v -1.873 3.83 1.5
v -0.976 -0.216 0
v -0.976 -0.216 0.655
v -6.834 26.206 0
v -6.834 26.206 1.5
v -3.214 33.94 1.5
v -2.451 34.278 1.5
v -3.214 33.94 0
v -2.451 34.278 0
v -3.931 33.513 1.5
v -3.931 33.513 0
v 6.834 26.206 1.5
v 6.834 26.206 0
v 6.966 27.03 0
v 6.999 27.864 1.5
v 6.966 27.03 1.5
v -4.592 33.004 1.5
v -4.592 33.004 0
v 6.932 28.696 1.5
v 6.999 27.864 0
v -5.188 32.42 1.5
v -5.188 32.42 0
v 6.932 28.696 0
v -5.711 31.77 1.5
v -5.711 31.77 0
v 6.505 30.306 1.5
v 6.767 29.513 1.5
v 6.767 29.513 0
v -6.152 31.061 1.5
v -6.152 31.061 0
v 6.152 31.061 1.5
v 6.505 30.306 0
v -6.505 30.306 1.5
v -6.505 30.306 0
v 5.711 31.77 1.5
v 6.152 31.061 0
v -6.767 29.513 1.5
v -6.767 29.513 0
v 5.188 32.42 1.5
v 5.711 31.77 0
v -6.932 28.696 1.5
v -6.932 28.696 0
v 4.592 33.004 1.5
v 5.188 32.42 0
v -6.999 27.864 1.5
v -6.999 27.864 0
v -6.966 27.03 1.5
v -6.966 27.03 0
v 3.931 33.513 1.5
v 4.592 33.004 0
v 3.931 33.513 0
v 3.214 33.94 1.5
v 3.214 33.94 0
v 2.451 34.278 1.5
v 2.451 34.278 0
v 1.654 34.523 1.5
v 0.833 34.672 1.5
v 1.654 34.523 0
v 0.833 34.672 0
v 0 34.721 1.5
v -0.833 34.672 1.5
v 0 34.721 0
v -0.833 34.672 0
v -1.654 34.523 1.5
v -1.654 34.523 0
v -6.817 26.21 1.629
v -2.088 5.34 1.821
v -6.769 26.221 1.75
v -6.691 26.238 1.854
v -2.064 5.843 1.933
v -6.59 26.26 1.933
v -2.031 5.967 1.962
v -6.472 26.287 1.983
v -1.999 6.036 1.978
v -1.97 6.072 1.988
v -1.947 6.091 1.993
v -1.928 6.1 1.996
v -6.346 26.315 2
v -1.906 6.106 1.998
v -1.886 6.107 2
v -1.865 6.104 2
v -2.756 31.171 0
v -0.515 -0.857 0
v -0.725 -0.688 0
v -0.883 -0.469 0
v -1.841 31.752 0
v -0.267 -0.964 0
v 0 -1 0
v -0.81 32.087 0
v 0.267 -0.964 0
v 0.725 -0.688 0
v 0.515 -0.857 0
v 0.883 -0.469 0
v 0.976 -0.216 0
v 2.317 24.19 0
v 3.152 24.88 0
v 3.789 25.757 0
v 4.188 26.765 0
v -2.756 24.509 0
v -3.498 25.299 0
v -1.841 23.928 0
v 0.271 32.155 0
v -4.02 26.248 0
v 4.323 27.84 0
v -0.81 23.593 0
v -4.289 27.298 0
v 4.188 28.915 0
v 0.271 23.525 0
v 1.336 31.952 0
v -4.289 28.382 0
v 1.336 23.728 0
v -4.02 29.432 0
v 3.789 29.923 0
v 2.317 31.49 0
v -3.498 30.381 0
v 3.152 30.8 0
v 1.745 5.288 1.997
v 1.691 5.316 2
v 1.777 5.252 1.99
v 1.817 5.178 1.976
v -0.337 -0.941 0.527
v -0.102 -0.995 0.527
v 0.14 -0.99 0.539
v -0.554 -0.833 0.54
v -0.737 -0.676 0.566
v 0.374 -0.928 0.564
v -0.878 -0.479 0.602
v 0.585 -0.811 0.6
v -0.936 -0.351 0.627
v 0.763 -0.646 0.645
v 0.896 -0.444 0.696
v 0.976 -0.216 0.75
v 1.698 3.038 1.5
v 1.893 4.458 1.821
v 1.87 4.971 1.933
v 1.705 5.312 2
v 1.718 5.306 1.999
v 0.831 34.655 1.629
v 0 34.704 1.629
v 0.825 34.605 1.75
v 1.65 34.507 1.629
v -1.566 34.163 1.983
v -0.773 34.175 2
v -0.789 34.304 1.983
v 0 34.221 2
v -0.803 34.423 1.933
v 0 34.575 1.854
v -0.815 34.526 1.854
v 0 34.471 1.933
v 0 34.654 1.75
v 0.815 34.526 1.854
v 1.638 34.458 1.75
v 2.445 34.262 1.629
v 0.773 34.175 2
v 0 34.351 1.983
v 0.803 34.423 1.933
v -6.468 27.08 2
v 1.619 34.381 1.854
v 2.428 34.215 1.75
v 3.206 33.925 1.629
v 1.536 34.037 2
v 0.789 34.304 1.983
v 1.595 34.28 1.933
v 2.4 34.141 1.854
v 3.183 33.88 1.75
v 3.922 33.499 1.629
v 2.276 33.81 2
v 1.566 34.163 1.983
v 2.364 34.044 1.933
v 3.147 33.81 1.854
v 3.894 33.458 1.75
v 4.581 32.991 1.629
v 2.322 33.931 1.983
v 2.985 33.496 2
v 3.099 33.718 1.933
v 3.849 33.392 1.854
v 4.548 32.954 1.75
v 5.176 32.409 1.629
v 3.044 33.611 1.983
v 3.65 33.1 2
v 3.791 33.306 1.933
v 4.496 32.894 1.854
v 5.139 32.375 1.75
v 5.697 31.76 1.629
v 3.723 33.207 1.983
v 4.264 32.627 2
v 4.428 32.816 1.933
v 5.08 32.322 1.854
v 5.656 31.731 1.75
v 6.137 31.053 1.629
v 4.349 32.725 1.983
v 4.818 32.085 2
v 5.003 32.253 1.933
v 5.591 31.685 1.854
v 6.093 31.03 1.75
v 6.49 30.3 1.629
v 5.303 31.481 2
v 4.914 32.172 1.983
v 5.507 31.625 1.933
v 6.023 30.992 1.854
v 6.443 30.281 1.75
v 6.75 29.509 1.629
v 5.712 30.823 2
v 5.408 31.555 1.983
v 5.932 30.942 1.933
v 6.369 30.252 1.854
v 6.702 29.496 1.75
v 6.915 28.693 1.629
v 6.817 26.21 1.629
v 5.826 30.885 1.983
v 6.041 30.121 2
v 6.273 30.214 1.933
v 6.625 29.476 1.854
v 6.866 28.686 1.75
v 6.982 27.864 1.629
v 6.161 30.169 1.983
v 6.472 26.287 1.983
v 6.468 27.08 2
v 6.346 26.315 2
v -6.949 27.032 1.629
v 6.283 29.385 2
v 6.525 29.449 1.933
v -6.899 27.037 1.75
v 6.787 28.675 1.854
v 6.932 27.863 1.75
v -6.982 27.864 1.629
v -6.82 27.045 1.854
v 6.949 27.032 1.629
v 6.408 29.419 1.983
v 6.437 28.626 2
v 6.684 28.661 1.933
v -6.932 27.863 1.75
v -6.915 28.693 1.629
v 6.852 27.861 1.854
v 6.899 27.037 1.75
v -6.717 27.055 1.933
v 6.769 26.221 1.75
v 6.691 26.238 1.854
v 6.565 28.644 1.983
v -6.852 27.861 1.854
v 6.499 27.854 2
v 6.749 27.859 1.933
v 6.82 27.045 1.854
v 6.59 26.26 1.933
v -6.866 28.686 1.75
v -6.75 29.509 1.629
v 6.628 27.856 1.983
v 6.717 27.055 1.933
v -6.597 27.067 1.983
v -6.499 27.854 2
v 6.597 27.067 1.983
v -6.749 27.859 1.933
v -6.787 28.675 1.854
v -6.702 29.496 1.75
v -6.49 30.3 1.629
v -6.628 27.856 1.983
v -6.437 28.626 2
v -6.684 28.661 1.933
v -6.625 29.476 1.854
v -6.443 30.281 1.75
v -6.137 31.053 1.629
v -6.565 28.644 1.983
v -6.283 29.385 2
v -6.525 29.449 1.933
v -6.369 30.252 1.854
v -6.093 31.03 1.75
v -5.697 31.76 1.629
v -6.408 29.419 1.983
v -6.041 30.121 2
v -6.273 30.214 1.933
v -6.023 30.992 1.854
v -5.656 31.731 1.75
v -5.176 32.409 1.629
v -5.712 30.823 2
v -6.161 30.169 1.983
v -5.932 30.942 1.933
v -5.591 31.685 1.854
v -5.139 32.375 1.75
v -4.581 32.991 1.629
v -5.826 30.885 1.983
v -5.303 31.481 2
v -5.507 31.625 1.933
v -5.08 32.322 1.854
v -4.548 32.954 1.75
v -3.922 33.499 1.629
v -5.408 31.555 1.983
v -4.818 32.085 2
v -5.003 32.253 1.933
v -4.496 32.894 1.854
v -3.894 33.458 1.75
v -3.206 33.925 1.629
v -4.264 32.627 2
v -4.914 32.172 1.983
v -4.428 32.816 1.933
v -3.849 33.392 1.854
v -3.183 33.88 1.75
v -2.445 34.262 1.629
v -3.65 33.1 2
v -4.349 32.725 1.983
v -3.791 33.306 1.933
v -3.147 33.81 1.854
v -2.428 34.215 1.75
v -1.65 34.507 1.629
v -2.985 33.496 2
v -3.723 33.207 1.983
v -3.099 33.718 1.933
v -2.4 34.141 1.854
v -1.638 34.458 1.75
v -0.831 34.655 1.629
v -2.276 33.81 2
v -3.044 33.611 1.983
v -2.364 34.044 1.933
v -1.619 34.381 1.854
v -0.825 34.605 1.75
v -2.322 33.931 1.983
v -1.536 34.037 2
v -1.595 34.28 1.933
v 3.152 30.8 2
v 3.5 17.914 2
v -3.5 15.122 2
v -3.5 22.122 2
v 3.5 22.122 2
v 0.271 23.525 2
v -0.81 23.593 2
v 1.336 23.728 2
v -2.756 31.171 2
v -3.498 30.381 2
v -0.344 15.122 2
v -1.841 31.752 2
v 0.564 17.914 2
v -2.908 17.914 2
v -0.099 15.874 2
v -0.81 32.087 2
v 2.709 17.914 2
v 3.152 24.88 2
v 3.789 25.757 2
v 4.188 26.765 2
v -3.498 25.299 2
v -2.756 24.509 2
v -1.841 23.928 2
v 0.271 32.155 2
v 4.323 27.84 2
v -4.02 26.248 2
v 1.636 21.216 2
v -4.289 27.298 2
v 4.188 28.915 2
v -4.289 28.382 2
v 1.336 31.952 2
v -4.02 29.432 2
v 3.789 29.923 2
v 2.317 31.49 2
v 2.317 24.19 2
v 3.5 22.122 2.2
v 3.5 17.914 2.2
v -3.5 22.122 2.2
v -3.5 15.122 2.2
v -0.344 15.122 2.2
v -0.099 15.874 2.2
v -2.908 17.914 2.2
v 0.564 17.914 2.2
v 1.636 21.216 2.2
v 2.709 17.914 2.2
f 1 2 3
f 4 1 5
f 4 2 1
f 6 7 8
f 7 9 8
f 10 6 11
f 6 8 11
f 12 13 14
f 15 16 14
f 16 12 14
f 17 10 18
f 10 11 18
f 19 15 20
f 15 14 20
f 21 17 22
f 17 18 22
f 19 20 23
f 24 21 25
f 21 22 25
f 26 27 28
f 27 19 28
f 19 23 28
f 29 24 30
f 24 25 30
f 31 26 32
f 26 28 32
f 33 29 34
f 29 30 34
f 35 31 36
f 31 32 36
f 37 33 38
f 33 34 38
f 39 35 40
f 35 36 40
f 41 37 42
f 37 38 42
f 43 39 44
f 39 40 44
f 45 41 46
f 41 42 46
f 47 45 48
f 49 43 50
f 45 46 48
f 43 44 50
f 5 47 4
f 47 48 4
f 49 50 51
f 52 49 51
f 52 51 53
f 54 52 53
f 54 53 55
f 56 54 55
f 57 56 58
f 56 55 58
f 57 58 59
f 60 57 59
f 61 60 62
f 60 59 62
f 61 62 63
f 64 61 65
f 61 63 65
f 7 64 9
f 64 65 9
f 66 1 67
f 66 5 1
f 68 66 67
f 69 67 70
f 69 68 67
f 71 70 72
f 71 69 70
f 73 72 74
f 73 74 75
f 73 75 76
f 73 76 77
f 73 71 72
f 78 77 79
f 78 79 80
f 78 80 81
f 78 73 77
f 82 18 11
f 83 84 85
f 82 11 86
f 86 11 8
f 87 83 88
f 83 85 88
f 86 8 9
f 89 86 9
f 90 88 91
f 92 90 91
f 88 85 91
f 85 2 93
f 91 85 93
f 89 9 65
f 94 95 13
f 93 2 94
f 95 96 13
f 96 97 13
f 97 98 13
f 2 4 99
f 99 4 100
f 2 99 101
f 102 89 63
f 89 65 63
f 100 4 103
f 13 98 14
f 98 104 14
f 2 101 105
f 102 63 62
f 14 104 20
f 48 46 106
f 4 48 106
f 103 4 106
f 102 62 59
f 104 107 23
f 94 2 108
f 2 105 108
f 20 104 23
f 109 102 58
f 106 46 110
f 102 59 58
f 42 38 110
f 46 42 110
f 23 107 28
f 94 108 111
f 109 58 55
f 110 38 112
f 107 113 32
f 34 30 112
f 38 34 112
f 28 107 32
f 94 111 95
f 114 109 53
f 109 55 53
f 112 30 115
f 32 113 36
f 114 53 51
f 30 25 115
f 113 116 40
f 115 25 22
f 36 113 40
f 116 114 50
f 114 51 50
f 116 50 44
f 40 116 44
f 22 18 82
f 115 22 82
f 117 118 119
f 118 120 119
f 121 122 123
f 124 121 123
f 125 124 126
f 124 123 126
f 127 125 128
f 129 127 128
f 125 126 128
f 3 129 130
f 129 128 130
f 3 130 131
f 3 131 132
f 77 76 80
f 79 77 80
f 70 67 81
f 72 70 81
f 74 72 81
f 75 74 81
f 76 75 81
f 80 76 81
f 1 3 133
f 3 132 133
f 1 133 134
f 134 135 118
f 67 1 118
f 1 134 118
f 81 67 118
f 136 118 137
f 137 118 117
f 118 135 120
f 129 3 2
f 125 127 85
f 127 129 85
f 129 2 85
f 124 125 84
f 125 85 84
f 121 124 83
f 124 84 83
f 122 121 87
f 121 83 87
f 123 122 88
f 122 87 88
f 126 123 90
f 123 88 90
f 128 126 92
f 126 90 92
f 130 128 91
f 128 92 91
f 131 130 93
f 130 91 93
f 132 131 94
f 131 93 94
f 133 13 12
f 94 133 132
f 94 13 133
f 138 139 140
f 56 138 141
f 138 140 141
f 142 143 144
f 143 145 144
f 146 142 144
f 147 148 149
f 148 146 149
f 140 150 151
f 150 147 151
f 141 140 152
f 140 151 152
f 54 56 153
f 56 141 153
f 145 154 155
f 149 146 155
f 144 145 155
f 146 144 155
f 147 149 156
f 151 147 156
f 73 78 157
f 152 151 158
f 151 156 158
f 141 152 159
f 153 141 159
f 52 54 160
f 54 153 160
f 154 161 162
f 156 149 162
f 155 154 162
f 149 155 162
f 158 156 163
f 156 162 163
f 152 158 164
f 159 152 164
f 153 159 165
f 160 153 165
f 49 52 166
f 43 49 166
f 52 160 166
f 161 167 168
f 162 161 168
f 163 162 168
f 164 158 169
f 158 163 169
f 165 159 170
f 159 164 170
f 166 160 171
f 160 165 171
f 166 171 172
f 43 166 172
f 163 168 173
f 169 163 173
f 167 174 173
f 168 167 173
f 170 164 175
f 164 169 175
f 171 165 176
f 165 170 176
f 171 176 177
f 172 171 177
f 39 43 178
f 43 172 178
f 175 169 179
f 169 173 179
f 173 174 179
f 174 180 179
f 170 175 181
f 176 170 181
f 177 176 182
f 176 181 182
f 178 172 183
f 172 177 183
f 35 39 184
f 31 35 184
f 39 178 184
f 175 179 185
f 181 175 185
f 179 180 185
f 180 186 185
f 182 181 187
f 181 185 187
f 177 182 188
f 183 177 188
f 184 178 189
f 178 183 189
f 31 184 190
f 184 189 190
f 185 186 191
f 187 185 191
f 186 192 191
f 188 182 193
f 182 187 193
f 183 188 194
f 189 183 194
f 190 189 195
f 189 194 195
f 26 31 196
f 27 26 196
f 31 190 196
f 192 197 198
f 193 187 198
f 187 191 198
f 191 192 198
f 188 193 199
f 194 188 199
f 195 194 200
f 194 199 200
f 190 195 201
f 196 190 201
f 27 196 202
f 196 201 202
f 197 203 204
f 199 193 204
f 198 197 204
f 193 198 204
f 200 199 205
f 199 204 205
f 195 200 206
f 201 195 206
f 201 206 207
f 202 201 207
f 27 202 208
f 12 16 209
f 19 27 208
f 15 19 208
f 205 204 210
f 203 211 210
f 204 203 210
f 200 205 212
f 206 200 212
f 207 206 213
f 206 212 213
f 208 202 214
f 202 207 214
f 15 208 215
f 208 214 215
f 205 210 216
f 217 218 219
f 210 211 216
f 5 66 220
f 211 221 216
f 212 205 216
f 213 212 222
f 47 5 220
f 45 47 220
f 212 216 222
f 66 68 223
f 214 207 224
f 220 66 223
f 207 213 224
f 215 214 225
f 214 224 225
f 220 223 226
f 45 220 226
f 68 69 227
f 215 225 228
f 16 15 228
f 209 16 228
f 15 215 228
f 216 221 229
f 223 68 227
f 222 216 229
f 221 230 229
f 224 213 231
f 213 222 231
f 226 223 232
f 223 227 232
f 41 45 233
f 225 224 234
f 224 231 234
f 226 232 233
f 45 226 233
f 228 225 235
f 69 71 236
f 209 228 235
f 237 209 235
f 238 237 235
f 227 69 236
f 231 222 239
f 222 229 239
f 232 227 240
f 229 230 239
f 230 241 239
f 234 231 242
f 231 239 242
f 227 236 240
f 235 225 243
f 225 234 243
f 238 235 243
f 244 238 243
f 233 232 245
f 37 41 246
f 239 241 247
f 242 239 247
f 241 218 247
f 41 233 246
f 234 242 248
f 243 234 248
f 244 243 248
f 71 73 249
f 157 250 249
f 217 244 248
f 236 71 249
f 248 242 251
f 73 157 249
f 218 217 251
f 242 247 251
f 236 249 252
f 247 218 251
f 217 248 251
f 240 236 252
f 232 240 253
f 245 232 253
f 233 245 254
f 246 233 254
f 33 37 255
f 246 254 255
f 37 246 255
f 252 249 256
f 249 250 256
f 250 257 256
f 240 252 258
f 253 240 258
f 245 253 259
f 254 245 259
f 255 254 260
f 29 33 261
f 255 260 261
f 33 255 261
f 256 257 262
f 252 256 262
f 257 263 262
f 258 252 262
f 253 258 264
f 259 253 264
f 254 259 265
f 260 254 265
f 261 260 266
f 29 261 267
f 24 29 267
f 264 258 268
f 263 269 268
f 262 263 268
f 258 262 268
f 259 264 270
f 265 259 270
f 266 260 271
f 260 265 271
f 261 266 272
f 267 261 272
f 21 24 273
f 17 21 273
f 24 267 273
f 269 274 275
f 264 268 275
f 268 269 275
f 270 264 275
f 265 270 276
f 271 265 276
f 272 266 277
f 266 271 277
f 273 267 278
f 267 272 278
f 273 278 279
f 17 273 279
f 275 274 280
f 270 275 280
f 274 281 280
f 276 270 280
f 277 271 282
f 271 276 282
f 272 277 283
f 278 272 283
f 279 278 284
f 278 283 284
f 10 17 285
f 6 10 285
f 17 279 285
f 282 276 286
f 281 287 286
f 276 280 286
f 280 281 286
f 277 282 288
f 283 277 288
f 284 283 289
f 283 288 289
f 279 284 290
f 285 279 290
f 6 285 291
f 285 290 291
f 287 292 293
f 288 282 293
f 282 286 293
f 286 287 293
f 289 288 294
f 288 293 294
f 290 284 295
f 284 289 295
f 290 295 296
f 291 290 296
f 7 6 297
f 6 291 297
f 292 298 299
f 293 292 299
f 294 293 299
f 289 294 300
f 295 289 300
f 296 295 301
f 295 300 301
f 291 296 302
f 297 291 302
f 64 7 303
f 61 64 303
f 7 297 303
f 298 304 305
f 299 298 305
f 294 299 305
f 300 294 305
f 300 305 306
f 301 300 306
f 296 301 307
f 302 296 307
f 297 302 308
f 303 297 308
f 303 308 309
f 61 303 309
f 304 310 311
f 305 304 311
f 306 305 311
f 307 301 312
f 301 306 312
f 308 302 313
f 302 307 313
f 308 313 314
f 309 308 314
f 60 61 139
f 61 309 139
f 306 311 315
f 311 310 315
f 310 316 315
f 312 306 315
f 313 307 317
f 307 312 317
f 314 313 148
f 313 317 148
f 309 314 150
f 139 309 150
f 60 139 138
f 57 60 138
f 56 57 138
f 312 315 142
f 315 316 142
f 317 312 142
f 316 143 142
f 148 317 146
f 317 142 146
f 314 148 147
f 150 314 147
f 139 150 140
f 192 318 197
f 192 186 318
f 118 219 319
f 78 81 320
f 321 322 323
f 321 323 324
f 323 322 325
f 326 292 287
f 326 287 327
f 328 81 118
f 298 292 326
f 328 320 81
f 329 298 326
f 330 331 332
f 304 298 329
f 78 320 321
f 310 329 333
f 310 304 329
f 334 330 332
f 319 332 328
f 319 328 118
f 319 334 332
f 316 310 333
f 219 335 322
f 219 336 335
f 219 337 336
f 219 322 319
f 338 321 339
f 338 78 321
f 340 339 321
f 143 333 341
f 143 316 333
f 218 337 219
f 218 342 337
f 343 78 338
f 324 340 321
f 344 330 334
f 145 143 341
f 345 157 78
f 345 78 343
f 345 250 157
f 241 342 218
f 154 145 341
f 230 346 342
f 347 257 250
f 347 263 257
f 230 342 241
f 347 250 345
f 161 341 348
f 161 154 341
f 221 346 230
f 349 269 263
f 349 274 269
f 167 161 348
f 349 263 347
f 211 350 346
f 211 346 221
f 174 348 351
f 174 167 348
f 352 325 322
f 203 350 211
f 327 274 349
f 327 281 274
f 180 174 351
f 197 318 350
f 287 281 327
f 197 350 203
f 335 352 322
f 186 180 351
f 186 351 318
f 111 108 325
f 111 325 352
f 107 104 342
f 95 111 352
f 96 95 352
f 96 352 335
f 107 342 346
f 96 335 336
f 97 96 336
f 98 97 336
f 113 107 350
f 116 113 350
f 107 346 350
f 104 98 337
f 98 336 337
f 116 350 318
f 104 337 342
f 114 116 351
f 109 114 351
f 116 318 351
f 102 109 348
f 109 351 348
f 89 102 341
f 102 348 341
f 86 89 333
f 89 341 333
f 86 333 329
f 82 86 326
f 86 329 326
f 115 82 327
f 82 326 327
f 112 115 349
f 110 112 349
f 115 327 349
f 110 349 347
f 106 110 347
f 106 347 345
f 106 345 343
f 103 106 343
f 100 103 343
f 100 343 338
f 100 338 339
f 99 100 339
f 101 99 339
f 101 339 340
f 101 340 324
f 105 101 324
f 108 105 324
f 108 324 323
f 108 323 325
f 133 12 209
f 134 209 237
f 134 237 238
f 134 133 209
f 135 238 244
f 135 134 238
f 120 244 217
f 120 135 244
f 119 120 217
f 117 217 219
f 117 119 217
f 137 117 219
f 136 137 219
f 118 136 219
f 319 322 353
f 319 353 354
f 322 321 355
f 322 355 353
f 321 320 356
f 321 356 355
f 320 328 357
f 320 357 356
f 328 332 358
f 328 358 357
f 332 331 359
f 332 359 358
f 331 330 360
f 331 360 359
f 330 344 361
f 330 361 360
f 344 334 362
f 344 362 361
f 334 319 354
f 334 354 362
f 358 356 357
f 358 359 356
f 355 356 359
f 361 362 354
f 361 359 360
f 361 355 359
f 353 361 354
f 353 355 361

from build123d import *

# Parameters (mm, degrees)
PAD_DEPTH       = 2
POCKET_DEPTH    = 5
SKETCH004_R     = 4.32335
POCKET001_DEPTH = 5
PAD001_DEPTH    = 0.2
FILLET_R        = 0.5


with BuildPart() as part:
    # Sketch → Pad (new body)
    with BuildSketch(Plane.XY):
        with BuildLine():
            Line((-0.976296, -0.21644), (-6.834079, 26.206312))
            ThreePointArc((6.834079, 26.206312), (0, 34.721358), (-6.834079, 26.206312))
            Line((6.834079, 26.206312), (0.976296, -0.21644))
            ThreePointArc((-0.976296, -0.21644), (0, -1), (0.976296, -0.21644))
        make_face()
    extrude(amount=PAD_DEPTH)

    # Sketch001 → Pocket (cut)
    with BuildSketch(Plane(origin=(0.976296, -0.21644, 0), x_dir=(0.21644, 0.976296, 0), z_dir=(0.976296, -0.21644, 0))):
        Polygon((-2, 0.3), (10, 3), (-2, 3), align=None)
    extrude(amount=-POCKET_DEPTH, mode=Mode.SUBTRACT)

    # Sketch004 → Pocket001 (cut)
    with BuildSketch(Plane.XY.offset(2)):
        with Locations((0, 27.84)):
            Circle(SKETCH004_R)
    extrude(amount=-POCKET001_DEPTH, mode=Mode.SUBTRACT)

    # Sketch005 → Pad001 (new body)
    with BuildSketch(Plane.XY.offset(2)):
        Polygon((-3.5, 22.121615), (3.5, 22.121615), (3.5, 17.9142), (2.709286, 17.9142), (1.636494, 21.215913), (0.563703, 17.9142), (-2.907924, 17.9142), (-0.099319, 15.873629), (-0.343663, 15.121615), (-3.5, 15.121615), align=None)
    extrude(amount=PAD001_DEPTH)

    # Fillet
    fillet_edges = [part.edges().sort_by_distance(p)[0] for p in [
        (-4.619025, 16.214851, 2),
    ]]
    fillet(fillet_edges, radius=FILLET_R)


solid = part.part
